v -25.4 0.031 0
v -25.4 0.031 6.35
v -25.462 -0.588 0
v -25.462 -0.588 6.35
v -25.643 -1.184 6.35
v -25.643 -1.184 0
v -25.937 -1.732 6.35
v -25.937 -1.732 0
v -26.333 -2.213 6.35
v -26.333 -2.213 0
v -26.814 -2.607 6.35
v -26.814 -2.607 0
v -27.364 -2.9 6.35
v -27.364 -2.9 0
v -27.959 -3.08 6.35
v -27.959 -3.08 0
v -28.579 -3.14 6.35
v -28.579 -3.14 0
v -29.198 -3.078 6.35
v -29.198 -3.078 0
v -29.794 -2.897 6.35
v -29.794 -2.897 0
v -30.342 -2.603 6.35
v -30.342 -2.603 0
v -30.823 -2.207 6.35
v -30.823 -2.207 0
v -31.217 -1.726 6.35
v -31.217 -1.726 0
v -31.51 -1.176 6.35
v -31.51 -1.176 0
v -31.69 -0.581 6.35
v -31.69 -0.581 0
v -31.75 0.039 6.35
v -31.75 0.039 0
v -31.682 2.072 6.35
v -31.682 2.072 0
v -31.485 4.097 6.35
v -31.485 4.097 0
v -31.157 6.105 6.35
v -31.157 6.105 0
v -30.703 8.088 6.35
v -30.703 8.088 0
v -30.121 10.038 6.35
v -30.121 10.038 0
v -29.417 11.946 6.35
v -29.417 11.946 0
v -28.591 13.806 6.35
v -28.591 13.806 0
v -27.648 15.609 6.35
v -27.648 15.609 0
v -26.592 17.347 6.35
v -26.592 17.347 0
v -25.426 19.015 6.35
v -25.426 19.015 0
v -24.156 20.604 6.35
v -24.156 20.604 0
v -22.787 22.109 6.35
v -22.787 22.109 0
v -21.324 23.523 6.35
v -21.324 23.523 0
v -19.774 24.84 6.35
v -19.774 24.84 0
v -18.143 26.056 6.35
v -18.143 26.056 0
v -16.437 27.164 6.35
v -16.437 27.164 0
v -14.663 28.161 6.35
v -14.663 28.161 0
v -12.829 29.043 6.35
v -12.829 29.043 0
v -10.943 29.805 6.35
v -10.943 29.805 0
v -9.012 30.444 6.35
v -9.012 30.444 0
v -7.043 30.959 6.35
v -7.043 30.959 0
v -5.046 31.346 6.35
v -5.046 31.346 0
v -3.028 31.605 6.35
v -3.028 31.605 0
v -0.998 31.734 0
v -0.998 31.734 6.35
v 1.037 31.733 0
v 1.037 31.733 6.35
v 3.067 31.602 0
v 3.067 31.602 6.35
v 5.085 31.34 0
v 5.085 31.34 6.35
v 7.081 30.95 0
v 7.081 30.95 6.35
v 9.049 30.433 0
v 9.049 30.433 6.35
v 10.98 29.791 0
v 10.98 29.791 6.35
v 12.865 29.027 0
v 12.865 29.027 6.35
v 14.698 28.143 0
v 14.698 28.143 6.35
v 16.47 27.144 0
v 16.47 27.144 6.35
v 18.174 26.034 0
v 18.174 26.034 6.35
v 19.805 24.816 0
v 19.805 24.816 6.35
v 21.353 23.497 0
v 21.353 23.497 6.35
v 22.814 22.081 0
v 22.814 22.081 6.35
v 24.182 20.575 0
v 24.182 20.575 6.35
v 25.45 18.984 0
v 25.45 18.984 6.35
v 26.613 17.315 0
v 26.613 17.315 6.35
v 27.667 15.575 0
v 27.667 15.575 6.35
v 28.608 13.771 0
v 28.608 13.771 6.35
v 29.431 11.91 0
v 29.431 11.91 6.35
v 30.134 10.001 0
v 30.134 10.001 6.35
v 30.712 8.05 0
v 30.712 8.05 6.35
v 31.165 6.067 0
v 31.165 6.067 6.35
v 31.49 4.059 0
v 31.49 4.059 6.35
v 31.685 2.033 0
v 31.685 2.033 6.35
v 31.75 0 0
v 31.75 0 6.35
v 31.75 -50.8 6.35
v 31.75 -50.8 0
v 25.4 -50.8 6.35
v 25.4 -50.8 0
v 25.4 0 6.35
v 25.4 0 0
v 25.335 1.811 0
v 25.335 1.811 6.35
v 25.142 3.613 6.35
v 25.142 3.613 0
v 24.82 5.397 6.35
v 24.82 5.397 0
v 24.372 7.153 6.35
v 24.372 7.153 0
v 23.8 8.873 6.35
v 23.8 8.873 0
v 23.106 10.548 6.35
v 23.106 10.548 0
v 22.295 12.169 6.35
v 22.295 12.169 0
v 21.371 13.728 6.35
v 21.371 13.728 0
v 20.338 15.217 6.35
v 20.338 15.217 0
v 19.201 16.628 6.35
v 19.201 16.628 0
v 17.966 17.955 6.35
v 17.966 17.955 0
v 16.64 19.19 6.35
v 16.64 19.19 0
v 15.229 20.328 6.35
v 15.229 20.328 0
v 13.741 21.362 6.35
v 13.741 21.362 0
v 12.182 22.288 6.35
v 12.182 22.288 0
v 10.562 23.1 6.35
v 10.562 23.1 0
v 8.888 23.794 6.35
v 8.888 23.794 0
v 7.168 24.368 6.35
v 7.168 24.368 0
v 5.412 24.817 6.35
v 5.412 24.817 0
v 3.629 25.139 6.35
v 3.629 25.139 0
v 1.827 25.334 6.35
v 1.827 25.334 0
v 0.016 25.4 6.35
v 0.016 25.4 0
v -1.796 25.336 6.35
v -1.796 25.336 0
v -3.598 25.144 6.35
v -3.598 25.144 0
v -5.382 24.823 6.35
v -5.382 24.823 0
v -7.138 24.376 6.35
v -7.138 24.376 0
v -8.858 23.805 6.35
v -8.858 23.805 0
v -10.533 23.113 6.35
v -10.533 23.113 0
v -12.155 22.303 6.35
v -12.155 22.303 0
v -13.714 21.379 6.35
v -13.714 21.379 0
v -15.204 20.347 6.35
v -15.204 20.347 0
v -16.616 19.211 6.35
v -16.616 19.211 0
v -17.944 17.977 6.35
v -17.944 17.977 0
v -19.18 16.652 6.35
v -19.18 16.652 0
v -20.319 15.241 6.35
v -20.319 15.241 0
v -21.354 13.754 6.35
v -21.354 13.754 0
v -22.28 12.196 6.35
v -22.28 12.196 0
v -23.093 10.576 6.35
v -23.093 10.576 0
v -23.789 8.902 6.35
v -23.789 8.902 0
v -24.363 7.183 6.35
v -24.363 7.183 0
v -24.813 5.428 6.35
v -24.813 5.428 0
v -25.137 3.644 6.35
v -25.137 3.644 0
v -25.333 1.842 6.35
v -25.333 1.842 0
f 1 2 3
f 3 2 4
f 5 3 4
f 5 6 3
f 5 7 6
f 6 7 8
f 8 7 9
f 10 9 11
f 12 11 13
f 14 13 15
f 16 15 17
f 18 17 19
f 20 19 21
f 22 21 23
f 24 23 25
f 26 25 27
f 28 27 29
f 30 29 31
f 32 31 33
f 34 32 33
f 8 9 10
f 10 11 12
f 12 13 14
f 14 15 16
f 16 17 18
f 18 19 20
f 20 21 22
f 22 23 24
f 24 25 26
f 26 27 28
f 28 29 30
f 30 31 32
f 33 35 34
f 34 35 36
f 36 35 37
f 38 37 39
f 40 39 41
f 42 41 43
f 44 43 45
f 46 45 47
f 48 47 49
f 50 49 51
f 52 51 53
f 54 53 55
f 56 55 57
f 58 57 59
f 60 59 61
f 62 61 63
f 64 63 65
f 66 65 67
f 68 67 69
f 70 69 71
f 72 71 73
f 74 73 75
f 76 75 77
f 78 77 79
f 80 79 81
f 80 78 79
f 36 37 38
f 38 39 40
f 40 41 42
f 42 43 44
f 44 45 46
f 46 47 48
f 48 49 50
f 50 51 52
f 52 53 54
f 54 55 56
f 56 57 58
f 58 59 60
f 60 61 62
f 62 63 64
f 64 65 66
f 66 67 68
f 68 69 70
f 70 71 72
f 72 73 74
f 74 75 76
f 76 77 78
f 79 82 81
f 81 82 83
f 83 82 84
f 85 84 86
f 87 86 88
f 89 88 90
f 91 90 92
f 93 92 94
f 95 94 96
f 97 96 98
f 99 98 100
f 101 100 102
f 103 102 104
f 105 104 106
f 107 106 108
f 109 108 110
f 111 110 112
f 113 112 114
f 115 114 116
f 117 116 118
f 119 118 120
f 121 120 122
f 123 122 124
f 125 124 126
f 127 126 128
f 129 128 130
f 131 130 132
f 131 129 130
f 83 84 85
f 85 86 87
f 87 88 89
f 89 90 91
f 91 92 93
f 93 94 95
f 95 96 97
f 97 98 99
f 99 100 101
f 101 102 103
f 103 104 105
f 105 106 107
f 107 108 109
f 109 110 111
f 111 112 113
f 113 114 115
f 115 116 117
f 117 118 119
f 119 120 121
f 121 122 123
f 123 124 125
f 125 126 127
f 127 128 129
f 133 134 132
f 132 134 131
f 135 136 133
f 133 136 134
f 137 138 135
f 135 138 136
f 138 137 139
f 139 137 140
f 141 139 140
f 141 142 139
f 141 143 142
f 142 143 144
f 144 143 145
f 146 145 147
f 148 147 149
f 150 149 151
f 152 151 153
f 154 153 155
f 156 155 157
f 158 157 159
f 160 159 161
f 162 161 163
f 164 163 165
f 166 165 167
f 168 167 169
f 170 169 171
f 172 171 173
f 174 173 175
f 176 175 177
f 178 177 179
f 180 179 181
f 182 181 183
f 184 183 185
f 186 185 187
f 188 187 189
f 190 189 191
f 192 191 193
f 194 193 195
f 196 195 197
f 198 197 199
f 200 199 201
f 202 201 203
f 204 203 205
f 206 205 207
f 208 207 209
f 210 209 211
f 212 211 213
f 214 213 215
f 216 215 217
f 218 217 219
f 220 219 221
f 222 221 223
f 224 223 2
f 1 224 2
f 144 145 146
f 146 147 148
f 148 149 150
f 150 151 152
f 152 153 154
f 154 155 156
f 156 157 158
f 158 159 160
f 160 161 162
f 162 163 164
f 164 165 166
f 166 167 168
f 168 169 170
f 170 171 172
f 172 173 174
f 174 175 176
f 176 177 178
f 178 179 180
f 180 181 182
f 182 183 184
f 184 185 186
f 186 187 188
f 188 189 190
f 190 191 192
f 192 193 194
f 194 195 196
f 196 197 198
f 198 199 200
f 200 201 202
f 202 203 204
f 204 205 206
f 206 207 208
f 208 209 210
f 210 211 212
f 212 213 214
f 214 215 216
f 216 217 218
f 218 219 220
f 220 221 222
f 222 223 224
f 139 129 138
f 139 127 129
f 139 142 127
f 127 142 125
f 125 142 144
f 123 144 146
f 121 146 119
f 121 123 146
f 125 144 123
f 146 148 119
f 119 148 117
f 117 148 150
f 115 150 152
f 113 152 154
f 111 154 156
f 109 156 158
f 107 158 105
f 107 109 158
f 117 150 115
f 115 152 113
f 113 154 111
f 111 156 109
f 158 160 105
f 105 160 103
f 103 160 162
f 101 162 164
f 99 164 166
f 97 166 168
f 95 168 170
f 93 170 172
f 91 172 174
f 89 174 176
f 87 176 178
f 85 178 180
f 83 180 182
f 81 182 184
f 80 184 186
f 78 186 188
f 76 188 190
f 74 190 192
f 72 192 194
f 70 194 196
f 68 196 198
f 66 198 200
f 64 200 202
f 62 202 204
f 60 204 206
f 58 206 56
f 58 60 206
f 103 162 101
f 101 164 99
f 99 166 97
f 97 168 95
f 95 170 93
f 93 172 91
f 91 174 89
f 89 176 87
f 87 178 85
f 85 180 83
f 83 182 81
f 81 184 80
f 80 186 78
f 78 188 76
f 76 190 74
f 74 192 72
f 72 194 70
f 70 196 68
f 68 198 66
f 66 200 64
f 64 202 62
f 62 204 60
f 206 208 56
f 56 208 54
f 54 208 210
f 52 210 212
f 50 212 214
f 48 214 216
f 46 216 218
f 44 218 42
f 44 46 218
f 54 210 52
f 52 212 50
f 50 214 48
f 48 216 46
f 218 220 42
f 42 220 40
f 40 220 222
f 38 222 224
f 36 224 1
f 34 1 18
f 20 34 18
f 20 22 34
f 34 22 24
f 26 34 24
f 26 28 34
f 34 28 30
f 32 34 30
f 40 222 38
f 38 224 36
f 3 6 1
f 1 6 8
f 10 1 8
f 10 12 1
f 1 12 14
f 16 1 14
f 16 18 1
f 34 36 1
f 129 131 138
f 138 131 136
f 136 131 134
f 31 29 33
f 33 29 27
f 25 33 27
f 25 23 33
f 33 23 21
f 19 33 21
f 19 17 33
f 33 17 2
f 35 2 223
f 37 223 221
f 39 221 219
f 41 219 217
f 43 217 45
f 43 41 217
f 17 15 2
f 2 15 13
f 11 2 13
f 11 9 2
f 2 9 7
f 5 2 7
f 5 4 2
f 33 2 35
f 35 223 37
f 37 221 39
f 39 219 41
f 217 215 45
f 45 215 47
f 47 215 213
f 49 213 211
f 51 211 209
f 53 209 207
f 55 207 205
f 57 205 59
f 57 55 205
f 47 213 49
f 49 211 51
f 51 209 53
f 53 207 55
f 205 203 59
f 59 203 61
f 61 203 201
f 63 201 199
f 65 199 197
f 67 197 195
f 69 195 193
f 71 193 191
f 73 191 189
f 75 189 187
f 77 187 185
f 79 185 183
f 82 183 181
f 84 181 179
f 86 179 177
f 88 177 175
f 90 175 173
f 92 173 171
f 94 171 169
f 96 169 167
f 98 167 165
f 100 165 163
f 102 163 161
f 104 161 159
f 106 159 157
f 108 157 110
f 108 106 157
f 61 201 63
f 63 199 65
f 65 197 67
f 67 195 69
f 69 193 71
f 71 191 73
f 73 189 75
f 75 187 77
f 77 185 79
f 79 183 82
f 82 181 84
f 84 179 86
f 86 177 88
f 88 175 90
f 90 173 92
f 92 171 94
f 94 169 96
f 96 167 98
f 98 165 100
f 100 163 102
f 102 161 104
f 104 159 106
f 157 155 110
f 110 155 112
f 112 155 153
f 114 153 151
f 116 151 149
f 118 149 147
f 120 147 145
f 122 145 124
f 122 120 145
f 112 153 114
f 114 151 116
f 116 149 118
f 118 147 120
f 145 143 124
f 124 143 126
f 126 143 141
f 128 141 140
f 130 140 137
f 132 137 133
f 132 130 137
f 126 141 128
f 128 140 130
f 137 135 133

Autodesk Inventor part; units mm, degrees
ref_plane "YZ Plane" through (0, 0, 0) normal (1, 0, 0) x (0, 1, 0)
ref_plane "XZ Plane" through (0, 0, 0) normal (0, 1, 0) x (-1, 0, 0)
ref_plane "XY Plane" through (0, 0, 0) normal (0, 0, 1) x (1, 0, 0)
sketch "Sketch1" plane through (0, 0, 0) normal (0, 0, 1) x (1, 0, 0)
  arc A0 (25.4, 0) -> (-25.4, 0.0312) centre (0, 0) ccw
  arc A1 (31.75, 0) -> (-31.75, 0.039) centre (0, 0) ccw
  arc A2 (-31.75, 0.039) -> (-25.4, 0.0312) centre (-28.575, 0.0351) ccw
  line L0 (25.4, 0) -> (25.4, -50.8)
  line L1 (25.4, -50.8) -> (31.75, -50.8)
  line L2 (31.75, -50.8) -> (31.75, 0)
  line L3 (25.4, 0) -> (31.75, 0) construction
  dimension "d0" = 6.35
  dimension "d1" = 25.4
  dimension "d2" = 50.8
extrude "Extrusion1" add sketch "Sketch1" along normal blind 6.35
properties part number "HangHook" material "Steel, High Strength Low Alloy"
